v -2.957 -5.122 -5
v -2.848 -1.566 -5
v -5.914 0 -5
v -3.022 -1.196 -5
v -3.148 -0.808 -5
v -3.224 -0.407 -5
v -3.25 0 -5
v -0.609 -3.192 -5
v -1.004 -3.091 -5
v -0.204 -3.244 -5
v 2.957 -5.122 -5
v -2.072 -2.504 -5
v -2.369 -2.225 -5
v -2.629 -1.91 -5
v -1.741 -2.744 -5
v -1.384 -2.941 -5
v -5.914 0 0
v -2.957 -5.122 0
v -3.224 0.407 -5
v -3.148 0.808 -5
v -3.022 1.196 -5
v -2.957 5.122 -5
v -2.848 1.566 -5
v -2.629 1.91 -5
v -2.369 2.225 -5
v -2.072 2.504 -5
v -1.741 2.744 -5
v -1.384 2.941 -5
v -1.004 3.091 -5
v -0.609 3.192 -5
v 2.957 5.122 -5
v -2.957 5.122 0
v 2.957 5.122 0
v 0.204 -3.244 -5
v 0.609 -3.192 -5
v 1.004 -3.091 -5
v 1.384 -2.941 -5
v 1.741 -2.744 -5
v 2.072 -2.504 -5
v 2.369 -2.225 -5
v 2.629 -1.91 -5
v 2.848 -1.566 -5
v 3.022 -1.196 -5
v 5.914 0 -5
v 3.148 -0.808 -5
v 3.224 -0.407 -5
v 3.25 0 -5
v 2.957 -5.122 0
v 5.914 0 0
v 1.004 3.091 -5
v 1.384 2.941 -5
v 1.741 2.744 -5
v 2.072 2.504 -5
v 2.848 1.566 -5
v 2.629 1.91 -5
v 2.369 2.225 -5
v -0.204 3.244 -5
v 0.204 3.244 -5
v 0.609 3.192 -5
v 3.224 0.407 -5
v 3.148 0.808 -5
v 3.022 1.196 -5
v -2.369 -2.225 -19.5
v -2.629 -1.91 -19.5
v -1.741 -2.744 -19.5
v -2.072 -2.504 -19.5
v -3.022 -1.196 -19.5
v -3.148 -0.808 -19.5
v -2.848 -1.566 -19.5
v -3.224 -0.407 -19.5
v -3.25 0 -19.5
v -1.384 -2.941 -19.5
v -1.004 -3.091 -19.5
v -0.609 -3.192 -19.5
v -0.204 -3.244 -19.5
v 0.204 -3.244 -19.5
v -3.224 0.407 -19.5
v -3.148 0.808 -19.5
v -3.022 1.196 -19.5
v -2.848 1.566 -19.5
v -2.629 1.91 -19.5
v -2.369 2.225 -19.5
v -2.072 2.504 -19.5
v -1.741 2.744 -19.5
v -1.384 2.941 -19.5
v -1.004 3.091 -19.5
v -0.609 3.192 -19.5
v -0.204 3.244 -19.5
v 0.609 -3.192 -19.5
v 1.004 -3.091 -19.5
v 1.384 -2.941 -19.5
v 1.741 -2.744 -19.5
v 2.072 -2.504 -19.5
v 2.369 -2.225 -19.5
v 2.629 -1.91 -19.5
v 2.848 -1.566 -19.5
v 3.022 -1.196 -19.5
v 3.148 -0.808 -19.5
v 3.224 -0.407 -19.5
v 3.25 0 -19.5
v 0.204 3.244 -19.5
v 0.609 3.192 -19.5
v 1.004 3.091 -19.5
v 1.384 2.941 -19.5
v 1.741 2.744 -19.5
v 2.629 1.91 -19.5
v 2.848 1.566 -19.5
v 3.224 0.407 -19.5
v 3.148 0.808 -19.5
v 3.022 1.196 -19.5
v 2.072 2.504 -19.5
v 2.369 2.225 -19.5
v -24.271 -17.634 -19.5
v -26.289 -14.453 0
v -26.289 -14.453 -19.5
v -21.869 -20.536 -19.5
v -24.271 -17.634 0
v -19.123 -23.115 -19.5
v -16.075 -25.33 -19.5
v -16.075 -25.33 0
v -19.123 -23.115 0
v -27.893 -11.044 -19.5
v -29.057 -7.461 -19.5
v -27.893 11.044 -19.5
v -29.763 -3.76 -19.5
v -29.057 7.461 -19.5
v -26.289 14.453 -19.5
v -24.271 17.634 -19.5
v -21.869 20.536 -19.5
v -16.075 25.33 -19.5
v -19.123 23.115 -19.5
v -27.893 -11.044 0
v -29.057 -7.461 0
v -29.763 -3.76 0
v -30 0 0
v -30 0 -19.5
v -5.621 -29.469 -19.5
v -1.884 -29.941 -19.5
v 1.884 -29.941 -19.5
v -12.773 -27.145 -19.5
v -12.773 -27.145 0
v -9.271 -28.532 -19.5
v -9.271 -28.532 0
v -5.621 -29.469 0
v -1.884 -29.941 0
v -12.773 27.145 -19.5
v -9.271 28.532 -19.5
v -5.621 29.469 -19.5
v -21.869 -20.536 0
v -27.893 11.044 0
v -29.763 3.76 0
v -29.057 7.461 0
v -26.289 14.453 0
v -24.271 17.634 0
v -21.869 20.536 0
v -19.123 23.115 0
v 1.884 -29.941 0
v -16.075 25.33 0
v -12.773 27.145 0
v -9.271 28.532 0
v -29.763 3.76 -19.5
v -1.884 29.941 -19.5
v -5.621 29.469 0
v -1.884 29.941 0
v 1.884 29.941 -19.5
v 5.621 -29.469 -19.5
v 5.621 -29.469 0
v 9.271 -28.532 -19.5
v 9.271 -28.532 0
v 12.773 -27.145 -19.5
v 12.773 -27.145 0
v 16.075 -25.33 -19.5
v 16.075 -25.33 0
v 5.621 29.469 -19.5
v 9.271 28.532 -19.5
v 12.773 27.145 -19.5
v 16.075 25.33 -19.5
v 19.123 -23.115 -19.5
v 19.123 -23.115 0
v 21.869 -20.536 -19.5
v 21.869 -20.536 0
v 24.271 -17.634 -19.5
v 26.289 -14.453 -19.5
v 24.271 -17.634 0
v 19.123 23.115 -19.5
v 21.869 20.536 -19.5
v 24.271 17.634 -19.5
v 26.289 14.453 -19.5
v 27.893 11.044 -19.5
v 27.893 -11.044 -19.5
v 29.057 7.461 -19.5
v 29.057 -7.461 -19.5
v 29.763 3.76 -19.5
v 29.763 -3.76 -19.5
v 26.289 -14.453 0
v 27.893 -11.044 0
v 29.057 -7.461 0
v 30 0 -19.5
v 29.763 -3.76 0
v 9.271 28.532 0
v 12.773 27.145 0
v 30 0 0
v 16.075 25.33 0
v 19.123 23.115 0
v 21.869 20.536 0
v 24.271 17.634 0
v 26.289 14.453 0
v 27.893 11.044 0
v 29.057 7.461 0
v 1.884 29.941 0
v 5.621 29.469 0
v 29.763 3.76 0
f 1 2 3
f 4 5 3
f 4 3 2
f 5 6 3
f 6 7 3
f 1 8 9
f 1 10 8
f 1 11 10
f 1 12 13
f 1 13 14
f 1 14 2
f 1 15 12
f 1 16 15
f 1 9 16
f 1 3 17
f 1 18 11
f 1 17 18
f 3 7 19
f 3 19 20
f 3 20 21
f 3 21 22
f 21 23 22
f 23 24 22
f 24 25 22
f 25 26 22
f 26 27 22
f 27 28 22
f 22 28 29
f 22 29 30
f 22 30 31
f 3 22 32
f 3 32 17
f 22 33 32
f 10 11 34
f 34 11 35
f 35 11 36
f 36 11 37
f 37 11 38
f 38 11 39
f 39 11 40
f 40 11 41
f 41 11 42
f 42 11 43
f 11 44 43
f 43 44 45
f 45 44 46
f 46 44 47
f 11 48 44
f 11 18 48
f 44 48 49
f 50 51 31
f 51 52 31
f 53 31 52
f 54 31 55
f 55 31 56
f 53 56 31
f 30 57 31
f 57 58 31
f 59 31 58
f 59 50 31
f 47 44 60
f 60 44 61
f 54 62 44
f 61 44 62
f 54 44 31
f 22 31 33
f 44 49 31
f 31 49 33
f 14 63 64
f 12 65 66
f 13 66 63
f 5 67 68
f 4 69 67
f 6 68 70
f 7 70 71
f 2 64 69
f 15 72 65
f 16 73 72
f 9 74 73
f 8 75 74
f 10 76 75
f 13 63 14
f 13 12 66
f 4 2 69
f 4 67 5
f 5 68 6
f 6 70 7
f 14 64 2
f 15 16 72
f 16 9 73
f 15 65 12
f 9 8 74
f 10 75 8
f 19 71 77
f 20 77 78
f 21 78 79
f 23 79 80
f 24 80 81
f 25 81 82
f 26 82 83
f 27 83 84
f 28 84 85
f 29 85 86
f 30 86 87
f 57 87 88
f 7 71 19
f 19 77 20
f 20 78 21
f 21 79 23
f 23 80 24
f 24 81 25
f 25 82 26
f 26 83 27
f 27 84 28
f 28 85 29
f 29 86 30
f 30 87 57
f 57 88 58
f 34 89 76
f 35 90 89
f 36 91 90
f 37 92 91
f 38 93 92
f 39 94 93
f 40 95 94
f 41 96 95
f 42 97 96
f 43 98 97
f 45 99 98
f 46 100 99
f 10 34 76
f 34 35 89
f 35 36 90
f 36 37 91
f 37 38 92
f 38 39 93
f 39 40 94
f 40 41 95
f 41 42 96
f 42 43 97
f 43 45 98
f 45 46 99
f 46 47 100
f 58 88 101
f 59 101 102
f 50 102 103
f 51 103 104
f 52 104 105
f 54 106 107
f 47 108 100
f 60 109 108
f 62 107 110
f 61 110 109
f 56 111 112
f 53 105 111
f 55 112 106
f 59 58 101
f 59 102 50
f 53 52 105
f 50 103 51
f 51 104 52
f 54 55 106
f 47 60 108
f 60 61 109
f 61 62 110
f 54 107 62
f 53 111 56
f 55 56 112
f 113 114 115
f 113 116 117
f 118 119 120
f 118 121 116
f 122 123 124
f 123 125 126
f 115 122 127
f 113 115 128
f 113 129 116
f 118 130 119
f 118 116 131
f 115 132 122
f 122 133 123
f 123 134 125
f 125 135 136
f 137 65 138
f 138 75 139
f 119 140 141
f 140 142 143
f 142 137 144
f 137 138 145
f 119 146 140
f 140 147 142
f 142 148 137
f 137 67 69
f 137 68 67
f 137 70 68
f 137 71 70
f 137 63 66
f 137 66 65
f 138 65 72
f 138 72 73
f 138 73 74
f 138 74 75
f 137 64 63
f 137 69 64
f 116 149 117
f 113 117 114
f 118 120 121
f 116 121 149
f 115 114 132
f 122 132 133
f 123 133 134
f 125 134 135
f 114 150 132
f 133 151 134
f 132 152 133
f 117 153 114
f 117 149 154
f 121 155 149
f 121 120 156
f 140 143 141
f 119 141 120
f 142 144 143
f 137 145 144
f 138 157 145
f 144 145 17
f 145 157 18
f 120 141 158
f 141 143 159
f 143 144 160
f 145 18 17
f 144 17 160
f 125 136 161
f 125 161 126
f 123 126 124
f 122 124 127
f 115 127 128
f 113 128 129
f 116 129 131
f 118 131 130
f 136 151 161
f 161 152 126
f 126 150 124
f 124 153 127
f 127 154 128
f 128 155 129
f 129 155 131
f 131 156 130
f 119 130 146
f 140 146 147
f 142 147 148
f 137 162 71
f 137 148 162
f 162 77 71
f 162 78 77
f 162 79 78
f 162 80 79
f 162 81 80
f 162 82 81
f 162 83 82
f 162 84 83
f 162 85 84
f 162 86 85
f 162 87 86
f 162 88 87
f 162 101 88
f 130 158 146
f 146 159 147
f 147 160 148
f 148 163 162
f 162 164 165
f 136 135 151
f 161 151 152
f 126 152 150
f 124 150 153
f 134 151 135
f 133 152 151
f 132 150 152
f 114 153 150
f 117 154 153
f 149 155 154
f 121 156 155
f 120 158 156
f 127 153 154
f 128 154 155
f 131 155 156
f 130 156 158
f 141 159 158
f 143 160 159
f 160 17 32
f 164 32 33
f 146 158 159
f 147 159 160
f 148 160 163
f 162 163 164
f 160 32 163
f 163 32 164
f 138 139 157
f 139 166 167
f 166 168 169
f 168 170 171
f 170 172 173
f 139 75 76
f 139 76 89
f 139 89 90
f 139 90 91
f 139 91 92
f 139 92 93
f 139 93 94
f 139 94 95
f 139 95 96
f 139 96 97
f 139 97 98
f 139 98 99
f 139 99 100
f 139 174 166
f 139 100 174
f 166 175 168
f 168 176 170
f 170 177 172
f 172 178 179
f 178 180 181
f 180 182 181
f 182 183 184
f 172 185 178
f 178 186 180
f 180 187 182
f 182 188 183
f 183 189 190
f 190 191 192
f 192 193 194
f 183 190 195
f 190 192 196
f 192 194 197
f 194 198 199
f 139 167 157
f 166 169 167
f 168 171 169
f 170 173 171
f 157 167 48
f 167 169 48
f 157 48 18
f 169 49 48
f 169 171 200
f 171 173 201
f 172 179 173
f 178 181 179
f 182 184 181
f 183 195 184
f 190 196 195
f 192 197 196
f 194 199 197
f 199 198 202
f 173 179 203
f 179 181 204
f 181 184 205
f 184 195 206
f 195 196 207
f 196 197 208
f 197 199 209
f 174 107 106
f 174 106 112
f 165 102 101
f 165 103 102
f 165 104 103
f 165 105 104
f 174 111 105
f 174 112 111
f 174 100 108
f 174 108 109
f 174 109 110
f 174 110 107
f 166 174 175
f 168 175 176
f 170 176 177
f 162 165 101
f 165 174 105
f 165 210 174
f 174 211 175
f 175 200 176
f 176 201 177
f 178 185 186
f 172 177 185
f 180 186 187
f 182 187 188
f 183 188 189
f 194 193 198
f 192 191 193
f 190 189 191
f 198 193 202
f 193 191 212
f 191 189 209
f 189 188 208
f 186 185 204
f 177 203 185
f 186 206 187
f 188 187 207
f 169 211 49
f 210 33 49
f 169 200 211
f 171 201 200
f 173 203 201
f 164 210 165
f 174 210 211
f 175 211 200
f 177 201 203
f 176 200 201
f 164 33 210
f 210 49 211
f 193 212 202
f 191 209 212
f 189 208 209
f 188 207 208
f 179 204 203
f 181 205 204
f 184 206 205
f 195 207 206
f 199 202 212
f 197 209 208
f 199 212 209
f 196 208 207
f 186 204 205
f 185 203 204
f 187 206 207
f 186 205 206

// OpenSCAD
$fn = 50;


difference() {
	union() {
		translate(v = [0, 0, -19.5000000000]) {
			cylinder(h = 19.5000000000, r = 30.0000000000);
		}
	}
	union() {
		translate(v = [0, 0, 0]) {
			rotate(a = [0, 0, 0]) {
				difference() {
					union() {
						translate(v = [0, 0, -5]) {
							linear_extrude(height = 5) {
								polygon(points = [[5.9142500000, 0.0000000000], [2.9571250000, 5.1218907443], [-2.9571250000, 5.1218907443], [-5.9142500000, 0.0000000000], [-2.9571250000, -5.1218907443], [2.9571250000, -5.1218907443]]);
							}
						}
					}
					union();
				}
			}
		}
		#translate(v = [0, 0, -100.0000000000]) {
			cylinder(h = 200, r = 3.2500000000);
		}
	}
}
